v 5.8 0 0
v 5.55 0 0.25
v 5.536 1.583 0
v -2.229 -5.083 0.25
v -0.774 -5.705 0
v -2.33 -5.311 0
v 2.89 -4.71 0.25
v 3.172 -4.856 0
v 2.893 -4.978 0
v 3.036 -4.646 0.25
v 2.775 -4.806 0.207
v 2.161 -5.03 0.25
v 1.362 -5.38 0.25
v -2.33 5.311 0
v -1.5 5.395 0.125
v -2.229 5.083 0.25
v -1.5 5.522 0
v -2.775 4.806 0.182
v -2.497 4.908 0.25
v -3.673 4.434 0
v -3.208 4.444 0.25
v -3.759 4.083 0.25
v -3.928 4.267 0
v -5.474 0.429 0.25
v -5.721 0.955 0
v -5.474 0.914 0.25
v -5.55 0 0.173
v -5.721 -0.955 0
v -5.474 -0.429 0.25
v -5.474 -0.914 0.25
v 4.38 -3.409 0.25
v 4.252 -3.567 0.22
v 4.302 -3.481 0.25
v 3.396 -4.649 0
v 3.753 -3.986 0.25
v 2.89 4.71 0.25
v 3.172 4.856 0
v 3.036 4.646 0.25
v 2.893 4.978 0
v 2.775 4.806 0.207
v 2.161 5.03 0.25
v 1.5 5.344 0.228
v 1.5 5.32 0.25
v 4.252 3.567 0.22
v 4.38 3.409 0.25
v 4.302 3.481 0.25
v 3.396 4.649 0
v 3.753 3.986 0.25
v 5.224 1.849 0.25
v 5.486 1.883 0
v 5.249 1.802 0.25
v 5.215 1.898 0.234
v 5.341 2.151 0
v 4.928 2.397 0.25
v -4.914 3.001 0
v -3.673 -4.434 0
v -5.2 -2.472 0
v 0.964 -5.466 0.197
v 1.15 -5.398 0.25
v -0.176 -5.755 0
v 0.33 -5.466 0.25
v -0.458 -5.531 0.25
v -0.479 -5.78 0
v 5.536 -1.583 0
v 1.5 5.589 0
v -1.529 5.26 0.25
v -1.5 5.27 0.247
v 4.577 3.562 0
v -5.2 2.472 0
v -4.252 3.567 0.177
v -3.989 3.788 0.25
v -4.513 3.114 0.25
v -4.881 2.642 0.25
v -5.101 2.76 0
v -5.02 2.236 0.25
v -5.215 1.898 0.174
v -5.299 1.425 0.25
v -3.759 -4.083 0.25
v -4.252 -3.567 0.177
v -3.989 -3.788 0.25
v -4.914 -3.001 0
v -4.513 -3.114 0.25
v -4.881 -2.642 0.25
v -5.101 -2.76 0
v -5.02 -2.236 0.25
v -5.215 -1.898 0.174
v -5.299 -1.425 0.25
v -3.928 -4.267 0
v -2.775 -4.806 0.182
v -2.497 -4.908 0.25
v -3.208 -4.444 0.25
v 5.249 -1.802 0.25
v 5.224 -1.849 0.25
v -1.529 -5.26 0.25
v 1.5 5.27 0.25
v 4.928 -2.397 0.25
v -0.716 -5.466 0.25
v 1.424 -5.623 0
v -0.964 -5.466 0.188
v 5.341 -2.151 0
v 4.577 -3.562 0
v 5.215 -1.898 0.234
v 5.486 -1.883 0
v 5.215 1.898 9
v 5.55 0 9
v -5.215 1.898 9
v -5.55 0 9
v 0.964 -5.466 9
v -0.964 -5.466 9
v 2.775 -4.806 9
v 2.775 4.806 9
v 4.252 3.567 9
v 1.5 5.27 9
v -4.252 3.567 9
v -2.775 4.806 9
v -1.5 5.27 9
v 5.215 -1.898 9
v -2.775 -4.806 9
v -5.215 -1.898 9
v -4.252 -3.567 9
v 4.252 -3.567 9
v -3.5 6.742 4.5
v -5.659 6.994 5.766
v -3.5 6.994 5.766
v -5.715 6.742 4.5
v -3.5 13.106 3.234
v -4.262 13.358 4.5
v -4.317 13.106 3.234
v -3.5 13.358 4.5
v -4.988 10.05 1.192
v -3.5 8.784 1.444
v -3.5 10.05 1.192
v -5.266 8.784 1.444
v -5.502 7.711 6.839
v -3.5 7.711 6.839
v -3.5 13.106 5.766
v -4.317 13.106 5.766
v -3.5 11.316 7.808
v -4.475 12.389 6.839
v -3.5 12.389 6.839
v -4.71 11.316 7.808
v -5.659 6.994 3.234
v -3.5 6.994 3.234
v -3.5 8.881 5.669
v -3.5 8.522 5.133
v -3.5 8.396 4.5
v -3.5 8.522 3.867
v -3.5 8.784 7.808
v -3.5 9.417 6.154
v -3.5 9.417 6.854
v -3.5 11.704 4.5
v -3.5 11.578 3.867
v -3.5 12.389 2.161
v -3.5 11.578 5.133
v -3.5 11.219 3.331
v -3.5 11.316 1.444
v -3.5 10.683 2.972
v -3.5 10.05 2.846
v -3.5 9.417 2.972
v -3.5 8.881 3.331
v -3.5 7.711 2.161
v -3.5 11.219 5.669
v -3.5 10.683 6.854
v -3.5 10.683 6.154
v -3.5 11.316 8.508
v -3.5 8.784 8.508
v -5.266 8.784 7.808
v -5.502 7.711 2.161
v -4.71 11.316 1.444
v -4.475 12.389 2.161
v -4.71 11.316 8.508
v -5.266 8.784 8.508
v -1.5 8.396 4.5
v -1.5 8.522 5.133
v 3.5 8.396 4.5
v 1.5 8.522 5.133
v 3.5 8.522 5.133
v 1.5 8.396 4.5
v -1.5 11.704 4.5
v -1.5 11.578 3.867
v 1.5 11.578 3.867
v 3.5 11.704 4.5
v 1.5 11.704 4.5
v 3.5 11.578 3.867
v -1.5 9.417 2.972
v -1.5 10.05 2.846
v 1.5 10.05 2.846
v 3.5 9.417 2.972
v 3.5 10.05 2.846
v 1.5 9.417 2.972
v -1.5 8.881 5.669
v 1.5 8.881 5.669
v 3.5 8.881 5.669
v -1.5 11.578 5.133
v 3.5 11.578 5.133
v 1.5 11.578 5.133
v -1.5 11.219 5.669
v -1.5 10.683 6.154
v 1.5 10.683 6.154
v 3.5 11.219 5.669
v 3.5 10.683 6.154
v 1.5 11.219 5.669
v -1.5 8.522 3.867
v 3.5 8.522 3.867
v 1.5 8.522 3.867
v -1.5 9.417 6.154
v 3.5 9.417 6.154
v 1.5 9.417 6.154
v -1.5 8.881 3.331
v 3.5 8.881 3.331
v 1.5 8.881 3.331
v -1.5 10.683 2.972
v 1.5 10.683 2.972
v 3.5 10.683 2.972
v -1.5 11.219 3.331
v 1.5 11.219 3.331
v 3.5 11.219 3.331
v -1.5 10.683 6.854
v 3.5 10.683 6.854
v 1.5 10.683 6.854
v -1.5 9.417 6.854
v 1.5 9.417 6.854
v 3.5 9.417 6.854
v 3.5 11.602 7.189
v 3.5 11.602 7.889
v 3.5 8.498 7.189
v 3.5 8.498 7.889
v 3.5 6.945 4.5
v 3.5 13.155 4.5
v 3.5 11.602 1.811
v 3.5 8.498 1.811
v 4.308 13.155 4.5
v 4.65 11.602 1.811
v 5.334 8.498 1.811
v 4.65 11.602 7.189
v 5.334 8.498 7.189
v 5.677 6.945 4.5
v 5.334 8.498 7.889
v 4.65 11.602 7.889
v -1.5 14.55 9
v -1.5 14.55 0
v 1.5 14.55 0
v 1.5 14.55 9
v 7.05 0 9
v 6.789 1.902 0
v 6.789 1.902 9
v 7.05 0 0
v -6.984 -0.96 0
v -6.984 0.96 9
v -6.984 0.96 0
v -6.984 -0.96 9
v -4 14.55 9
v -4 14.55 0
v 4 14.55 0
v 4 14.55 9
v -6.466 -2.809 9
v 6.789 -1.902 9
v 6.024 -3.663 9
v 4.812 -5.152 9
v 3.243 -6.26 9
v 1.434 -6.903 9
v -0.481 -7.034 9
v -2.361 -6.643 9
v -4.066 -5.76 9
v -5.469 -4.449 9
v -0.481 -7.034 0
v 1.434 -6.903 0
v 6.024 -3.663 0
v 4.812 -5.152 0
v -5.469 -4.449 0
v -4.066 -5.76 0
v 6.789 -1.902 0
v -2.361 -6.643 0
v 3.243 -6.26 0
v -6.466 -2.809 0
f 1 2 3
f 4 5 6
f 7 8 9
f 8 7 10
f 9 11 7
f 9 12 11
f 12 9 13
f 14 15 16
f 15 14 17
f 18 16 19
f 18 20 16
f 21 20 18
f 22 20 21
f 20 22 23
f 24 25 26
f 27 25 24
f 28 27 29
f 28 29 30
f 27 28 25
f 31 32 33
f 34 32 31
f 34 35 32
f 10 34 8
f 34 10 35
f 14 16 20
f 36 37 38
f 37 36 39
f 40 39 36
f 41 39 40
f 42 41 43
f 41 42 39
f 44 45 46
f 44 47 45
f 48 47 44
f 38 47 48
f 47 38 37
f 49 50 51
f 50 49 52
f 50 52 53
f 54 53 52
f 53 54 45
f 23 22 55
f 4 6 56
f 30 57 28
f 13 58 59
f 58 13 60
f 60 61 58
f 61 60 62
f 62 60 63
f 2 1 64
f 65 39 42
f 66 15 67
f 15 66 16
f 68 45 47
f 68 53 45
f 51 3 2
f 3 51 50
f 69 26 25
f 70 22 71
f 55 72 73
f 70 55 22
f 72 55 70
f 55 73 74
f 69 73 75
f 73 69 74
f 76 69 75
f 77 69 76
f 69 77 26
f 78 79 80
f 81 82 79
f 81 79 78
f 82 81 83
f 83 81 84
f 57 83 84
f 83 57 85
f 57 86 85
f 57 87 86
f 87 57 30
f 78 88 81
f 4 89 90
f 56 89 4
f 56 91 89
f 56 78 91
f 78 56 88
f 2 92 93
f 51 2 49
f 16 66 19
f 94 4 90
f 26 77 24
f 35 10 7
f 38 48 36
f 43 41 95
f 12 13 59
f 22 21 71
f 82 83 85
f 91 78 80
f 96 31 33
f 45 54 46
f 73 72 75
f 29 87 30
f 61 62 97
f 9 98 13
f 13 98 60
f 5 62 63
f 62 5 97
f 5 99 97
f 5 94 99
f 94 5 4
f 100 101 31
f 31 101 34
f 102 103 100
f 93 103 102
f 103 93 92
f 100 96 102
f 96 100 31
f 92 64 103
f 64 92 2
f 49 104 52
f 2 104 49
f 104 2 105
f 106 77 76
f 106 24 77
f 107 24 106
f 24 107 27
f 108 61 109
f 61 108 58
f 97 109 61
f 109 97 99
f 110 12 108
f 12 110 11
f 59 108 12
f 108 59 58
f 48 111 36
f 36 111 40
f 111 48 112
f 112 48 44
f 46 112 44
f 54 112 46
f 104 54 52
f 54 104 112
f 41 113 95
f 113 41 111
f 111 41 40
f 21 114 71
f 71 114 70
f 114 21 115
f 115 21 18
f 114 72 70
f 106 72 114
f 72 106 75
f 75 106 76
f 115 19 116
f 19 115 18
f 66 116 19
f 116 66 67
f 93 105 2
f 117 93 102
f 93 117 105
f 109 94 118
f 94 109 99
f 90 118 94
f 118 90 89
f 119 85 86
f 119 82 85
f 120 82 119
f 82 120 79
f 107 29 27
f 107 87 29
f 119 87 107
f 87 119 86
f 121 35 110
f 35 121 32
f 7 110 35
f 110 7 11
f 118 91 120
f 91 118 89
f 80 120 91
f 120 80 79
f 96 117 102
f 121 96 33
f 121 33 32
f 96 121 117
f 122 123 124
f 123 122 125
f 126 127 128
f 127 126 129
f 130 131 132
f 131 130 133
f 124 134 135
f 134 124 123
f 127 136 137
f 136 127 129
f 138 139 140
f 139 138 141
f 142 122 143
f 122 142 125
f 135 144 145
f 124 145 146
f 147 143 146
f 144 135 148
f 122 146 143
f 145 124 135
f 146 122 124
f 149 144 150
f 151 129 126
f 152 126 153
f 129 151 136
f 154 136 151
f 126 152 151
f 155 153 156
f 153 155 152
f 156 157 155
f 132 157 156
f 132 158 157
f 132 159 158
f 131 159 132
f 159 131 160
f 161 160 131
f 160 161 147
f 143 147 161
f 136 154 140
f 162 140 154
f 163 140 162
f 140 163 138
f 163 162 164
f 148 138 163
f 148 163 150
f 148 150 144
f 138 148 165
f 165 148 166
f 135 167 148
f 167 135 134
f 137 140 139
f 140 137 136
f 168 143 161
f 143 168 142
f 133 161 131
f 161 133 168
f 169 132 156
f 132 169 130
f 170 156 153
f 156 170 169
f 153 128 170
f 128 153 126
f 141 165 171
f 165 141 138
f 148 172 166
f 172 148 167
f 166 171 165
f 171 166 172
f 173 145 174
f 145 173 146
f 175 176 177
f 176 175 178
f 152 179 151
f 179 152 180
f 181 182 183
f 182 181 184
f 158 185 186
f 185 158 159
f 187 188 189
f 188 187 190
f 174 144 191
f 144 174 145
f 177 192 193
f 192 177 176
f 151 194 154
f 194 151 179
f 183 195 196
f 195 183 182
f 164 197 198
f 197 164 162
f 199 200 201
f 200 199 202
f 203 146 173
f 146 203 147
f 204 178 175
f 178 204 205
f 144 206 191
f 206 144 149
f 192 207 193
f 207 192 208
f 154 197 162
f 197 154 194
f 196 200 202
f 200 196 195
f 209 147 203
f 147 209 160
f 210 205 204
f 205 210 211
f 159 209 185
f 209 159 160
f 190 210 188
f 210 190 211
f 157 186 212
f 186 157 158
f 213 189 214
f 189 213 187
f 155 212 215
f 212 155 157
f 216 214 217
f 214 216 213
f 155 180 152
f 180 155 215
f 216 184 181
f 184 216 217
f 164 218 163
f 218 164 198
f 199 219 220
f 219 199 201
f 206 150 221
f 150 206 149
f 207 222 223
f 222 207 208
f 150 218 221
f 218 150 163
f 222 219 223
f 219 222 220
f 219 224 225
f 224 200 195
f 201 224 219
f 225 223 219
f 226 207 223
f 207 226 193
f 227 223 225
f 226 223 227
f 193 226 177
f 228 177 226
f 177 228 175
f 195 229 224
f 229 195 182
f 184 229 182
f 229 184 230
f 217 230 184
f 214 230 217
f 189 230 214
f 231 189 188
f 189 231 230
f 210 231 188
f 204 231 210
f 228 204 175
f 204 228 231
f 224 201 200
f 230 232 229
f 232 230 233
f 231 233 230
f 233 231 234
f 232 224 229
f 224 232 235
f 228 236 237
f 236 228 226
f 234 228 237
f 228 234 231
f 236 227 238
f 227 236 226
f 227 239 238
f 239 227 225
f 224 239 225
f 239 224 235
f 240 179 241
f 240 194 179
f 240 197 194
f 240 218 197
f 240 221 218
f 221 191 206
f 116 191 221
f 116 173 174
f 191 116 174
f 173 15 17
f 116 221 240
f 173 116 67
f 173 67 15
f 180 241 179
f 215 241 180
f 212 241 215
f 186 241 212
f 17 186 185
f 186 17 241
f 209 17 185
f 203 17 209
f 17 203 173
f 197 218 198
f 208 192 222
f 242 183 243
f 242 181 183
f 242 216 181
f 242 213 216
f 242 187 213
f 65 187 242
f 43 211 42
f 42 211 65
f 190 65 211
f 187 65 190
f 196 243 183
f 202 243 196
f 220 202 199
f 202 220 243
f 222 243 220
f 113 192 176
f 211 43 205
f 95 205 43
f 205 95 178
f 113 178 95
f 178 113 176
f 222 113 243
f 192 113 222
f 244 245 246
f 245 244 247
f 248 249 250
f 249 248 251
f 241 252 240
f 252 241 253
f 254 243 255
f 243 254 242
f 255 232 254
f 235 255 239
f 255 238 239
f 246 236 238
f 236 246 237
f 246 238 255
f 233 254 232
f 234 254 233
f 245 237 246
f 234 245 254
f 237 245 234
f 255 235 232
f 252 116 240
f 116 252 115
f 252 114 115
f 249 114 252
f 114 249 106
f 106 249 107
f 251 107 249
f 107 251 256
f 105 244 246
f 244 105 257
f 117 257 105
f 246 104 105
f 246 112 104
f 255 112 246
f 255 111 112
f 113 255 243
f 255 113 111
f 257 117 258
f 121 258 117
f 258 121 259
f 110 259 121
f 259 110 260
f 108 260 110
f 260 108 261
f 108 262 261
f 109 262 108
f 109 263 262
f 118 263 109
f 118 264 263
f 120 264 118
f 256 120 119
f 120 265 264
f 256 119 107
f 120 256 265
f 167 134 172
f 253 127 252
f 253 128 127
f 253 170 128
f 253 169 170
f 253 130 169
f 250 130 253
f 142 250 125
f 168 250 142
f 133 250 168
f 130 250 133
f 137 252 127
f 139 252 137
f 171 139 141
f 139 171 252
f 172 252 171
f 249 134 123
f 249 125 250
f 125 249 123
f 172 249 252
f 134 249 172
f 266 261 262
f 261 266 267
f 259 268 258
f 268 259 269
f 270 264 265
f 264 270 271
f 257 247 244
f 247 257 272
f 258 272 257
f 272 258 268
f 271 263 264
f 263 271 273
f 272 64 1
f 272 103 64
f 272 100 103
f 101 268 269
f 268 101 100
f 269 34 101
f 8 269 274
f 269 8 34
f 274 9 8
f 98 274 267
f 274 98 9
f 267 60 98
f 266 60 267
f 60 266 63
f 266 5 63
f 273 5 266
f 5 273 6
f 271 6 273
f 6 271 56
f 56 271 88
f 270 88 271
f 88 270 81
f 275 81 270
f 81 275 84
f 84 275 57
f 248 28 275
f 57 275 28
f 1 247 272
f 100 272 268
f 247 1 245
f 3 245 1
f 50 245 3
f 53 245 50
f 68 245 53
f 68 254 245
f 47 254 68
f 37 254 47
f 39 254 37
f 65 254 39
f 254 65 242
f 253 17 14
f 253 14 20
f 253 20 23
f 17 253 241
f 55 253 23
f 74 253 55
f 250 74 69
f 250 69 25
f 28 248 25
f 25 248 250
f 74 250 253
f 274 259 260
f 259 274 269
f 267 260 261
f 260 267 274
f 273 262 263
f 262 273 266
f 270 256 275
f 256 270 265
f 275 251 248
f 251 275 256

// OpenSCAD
use <utilities.scad>;
rack_r = 10.5/2+0.3;

difference(){
    hull(){
        cylinder(r=rack_r+1.5,h=9);
        translate([-4,rack_r,0]) cube([8,9,9]);
    }
    
    chamfered_hole(r=rack_r,h=999,chamfer=0.25);
    translate([0,rack_r+9/2,9/2]) rotate(90) pinch_y(3,t=2,bolt_l=10);
}
